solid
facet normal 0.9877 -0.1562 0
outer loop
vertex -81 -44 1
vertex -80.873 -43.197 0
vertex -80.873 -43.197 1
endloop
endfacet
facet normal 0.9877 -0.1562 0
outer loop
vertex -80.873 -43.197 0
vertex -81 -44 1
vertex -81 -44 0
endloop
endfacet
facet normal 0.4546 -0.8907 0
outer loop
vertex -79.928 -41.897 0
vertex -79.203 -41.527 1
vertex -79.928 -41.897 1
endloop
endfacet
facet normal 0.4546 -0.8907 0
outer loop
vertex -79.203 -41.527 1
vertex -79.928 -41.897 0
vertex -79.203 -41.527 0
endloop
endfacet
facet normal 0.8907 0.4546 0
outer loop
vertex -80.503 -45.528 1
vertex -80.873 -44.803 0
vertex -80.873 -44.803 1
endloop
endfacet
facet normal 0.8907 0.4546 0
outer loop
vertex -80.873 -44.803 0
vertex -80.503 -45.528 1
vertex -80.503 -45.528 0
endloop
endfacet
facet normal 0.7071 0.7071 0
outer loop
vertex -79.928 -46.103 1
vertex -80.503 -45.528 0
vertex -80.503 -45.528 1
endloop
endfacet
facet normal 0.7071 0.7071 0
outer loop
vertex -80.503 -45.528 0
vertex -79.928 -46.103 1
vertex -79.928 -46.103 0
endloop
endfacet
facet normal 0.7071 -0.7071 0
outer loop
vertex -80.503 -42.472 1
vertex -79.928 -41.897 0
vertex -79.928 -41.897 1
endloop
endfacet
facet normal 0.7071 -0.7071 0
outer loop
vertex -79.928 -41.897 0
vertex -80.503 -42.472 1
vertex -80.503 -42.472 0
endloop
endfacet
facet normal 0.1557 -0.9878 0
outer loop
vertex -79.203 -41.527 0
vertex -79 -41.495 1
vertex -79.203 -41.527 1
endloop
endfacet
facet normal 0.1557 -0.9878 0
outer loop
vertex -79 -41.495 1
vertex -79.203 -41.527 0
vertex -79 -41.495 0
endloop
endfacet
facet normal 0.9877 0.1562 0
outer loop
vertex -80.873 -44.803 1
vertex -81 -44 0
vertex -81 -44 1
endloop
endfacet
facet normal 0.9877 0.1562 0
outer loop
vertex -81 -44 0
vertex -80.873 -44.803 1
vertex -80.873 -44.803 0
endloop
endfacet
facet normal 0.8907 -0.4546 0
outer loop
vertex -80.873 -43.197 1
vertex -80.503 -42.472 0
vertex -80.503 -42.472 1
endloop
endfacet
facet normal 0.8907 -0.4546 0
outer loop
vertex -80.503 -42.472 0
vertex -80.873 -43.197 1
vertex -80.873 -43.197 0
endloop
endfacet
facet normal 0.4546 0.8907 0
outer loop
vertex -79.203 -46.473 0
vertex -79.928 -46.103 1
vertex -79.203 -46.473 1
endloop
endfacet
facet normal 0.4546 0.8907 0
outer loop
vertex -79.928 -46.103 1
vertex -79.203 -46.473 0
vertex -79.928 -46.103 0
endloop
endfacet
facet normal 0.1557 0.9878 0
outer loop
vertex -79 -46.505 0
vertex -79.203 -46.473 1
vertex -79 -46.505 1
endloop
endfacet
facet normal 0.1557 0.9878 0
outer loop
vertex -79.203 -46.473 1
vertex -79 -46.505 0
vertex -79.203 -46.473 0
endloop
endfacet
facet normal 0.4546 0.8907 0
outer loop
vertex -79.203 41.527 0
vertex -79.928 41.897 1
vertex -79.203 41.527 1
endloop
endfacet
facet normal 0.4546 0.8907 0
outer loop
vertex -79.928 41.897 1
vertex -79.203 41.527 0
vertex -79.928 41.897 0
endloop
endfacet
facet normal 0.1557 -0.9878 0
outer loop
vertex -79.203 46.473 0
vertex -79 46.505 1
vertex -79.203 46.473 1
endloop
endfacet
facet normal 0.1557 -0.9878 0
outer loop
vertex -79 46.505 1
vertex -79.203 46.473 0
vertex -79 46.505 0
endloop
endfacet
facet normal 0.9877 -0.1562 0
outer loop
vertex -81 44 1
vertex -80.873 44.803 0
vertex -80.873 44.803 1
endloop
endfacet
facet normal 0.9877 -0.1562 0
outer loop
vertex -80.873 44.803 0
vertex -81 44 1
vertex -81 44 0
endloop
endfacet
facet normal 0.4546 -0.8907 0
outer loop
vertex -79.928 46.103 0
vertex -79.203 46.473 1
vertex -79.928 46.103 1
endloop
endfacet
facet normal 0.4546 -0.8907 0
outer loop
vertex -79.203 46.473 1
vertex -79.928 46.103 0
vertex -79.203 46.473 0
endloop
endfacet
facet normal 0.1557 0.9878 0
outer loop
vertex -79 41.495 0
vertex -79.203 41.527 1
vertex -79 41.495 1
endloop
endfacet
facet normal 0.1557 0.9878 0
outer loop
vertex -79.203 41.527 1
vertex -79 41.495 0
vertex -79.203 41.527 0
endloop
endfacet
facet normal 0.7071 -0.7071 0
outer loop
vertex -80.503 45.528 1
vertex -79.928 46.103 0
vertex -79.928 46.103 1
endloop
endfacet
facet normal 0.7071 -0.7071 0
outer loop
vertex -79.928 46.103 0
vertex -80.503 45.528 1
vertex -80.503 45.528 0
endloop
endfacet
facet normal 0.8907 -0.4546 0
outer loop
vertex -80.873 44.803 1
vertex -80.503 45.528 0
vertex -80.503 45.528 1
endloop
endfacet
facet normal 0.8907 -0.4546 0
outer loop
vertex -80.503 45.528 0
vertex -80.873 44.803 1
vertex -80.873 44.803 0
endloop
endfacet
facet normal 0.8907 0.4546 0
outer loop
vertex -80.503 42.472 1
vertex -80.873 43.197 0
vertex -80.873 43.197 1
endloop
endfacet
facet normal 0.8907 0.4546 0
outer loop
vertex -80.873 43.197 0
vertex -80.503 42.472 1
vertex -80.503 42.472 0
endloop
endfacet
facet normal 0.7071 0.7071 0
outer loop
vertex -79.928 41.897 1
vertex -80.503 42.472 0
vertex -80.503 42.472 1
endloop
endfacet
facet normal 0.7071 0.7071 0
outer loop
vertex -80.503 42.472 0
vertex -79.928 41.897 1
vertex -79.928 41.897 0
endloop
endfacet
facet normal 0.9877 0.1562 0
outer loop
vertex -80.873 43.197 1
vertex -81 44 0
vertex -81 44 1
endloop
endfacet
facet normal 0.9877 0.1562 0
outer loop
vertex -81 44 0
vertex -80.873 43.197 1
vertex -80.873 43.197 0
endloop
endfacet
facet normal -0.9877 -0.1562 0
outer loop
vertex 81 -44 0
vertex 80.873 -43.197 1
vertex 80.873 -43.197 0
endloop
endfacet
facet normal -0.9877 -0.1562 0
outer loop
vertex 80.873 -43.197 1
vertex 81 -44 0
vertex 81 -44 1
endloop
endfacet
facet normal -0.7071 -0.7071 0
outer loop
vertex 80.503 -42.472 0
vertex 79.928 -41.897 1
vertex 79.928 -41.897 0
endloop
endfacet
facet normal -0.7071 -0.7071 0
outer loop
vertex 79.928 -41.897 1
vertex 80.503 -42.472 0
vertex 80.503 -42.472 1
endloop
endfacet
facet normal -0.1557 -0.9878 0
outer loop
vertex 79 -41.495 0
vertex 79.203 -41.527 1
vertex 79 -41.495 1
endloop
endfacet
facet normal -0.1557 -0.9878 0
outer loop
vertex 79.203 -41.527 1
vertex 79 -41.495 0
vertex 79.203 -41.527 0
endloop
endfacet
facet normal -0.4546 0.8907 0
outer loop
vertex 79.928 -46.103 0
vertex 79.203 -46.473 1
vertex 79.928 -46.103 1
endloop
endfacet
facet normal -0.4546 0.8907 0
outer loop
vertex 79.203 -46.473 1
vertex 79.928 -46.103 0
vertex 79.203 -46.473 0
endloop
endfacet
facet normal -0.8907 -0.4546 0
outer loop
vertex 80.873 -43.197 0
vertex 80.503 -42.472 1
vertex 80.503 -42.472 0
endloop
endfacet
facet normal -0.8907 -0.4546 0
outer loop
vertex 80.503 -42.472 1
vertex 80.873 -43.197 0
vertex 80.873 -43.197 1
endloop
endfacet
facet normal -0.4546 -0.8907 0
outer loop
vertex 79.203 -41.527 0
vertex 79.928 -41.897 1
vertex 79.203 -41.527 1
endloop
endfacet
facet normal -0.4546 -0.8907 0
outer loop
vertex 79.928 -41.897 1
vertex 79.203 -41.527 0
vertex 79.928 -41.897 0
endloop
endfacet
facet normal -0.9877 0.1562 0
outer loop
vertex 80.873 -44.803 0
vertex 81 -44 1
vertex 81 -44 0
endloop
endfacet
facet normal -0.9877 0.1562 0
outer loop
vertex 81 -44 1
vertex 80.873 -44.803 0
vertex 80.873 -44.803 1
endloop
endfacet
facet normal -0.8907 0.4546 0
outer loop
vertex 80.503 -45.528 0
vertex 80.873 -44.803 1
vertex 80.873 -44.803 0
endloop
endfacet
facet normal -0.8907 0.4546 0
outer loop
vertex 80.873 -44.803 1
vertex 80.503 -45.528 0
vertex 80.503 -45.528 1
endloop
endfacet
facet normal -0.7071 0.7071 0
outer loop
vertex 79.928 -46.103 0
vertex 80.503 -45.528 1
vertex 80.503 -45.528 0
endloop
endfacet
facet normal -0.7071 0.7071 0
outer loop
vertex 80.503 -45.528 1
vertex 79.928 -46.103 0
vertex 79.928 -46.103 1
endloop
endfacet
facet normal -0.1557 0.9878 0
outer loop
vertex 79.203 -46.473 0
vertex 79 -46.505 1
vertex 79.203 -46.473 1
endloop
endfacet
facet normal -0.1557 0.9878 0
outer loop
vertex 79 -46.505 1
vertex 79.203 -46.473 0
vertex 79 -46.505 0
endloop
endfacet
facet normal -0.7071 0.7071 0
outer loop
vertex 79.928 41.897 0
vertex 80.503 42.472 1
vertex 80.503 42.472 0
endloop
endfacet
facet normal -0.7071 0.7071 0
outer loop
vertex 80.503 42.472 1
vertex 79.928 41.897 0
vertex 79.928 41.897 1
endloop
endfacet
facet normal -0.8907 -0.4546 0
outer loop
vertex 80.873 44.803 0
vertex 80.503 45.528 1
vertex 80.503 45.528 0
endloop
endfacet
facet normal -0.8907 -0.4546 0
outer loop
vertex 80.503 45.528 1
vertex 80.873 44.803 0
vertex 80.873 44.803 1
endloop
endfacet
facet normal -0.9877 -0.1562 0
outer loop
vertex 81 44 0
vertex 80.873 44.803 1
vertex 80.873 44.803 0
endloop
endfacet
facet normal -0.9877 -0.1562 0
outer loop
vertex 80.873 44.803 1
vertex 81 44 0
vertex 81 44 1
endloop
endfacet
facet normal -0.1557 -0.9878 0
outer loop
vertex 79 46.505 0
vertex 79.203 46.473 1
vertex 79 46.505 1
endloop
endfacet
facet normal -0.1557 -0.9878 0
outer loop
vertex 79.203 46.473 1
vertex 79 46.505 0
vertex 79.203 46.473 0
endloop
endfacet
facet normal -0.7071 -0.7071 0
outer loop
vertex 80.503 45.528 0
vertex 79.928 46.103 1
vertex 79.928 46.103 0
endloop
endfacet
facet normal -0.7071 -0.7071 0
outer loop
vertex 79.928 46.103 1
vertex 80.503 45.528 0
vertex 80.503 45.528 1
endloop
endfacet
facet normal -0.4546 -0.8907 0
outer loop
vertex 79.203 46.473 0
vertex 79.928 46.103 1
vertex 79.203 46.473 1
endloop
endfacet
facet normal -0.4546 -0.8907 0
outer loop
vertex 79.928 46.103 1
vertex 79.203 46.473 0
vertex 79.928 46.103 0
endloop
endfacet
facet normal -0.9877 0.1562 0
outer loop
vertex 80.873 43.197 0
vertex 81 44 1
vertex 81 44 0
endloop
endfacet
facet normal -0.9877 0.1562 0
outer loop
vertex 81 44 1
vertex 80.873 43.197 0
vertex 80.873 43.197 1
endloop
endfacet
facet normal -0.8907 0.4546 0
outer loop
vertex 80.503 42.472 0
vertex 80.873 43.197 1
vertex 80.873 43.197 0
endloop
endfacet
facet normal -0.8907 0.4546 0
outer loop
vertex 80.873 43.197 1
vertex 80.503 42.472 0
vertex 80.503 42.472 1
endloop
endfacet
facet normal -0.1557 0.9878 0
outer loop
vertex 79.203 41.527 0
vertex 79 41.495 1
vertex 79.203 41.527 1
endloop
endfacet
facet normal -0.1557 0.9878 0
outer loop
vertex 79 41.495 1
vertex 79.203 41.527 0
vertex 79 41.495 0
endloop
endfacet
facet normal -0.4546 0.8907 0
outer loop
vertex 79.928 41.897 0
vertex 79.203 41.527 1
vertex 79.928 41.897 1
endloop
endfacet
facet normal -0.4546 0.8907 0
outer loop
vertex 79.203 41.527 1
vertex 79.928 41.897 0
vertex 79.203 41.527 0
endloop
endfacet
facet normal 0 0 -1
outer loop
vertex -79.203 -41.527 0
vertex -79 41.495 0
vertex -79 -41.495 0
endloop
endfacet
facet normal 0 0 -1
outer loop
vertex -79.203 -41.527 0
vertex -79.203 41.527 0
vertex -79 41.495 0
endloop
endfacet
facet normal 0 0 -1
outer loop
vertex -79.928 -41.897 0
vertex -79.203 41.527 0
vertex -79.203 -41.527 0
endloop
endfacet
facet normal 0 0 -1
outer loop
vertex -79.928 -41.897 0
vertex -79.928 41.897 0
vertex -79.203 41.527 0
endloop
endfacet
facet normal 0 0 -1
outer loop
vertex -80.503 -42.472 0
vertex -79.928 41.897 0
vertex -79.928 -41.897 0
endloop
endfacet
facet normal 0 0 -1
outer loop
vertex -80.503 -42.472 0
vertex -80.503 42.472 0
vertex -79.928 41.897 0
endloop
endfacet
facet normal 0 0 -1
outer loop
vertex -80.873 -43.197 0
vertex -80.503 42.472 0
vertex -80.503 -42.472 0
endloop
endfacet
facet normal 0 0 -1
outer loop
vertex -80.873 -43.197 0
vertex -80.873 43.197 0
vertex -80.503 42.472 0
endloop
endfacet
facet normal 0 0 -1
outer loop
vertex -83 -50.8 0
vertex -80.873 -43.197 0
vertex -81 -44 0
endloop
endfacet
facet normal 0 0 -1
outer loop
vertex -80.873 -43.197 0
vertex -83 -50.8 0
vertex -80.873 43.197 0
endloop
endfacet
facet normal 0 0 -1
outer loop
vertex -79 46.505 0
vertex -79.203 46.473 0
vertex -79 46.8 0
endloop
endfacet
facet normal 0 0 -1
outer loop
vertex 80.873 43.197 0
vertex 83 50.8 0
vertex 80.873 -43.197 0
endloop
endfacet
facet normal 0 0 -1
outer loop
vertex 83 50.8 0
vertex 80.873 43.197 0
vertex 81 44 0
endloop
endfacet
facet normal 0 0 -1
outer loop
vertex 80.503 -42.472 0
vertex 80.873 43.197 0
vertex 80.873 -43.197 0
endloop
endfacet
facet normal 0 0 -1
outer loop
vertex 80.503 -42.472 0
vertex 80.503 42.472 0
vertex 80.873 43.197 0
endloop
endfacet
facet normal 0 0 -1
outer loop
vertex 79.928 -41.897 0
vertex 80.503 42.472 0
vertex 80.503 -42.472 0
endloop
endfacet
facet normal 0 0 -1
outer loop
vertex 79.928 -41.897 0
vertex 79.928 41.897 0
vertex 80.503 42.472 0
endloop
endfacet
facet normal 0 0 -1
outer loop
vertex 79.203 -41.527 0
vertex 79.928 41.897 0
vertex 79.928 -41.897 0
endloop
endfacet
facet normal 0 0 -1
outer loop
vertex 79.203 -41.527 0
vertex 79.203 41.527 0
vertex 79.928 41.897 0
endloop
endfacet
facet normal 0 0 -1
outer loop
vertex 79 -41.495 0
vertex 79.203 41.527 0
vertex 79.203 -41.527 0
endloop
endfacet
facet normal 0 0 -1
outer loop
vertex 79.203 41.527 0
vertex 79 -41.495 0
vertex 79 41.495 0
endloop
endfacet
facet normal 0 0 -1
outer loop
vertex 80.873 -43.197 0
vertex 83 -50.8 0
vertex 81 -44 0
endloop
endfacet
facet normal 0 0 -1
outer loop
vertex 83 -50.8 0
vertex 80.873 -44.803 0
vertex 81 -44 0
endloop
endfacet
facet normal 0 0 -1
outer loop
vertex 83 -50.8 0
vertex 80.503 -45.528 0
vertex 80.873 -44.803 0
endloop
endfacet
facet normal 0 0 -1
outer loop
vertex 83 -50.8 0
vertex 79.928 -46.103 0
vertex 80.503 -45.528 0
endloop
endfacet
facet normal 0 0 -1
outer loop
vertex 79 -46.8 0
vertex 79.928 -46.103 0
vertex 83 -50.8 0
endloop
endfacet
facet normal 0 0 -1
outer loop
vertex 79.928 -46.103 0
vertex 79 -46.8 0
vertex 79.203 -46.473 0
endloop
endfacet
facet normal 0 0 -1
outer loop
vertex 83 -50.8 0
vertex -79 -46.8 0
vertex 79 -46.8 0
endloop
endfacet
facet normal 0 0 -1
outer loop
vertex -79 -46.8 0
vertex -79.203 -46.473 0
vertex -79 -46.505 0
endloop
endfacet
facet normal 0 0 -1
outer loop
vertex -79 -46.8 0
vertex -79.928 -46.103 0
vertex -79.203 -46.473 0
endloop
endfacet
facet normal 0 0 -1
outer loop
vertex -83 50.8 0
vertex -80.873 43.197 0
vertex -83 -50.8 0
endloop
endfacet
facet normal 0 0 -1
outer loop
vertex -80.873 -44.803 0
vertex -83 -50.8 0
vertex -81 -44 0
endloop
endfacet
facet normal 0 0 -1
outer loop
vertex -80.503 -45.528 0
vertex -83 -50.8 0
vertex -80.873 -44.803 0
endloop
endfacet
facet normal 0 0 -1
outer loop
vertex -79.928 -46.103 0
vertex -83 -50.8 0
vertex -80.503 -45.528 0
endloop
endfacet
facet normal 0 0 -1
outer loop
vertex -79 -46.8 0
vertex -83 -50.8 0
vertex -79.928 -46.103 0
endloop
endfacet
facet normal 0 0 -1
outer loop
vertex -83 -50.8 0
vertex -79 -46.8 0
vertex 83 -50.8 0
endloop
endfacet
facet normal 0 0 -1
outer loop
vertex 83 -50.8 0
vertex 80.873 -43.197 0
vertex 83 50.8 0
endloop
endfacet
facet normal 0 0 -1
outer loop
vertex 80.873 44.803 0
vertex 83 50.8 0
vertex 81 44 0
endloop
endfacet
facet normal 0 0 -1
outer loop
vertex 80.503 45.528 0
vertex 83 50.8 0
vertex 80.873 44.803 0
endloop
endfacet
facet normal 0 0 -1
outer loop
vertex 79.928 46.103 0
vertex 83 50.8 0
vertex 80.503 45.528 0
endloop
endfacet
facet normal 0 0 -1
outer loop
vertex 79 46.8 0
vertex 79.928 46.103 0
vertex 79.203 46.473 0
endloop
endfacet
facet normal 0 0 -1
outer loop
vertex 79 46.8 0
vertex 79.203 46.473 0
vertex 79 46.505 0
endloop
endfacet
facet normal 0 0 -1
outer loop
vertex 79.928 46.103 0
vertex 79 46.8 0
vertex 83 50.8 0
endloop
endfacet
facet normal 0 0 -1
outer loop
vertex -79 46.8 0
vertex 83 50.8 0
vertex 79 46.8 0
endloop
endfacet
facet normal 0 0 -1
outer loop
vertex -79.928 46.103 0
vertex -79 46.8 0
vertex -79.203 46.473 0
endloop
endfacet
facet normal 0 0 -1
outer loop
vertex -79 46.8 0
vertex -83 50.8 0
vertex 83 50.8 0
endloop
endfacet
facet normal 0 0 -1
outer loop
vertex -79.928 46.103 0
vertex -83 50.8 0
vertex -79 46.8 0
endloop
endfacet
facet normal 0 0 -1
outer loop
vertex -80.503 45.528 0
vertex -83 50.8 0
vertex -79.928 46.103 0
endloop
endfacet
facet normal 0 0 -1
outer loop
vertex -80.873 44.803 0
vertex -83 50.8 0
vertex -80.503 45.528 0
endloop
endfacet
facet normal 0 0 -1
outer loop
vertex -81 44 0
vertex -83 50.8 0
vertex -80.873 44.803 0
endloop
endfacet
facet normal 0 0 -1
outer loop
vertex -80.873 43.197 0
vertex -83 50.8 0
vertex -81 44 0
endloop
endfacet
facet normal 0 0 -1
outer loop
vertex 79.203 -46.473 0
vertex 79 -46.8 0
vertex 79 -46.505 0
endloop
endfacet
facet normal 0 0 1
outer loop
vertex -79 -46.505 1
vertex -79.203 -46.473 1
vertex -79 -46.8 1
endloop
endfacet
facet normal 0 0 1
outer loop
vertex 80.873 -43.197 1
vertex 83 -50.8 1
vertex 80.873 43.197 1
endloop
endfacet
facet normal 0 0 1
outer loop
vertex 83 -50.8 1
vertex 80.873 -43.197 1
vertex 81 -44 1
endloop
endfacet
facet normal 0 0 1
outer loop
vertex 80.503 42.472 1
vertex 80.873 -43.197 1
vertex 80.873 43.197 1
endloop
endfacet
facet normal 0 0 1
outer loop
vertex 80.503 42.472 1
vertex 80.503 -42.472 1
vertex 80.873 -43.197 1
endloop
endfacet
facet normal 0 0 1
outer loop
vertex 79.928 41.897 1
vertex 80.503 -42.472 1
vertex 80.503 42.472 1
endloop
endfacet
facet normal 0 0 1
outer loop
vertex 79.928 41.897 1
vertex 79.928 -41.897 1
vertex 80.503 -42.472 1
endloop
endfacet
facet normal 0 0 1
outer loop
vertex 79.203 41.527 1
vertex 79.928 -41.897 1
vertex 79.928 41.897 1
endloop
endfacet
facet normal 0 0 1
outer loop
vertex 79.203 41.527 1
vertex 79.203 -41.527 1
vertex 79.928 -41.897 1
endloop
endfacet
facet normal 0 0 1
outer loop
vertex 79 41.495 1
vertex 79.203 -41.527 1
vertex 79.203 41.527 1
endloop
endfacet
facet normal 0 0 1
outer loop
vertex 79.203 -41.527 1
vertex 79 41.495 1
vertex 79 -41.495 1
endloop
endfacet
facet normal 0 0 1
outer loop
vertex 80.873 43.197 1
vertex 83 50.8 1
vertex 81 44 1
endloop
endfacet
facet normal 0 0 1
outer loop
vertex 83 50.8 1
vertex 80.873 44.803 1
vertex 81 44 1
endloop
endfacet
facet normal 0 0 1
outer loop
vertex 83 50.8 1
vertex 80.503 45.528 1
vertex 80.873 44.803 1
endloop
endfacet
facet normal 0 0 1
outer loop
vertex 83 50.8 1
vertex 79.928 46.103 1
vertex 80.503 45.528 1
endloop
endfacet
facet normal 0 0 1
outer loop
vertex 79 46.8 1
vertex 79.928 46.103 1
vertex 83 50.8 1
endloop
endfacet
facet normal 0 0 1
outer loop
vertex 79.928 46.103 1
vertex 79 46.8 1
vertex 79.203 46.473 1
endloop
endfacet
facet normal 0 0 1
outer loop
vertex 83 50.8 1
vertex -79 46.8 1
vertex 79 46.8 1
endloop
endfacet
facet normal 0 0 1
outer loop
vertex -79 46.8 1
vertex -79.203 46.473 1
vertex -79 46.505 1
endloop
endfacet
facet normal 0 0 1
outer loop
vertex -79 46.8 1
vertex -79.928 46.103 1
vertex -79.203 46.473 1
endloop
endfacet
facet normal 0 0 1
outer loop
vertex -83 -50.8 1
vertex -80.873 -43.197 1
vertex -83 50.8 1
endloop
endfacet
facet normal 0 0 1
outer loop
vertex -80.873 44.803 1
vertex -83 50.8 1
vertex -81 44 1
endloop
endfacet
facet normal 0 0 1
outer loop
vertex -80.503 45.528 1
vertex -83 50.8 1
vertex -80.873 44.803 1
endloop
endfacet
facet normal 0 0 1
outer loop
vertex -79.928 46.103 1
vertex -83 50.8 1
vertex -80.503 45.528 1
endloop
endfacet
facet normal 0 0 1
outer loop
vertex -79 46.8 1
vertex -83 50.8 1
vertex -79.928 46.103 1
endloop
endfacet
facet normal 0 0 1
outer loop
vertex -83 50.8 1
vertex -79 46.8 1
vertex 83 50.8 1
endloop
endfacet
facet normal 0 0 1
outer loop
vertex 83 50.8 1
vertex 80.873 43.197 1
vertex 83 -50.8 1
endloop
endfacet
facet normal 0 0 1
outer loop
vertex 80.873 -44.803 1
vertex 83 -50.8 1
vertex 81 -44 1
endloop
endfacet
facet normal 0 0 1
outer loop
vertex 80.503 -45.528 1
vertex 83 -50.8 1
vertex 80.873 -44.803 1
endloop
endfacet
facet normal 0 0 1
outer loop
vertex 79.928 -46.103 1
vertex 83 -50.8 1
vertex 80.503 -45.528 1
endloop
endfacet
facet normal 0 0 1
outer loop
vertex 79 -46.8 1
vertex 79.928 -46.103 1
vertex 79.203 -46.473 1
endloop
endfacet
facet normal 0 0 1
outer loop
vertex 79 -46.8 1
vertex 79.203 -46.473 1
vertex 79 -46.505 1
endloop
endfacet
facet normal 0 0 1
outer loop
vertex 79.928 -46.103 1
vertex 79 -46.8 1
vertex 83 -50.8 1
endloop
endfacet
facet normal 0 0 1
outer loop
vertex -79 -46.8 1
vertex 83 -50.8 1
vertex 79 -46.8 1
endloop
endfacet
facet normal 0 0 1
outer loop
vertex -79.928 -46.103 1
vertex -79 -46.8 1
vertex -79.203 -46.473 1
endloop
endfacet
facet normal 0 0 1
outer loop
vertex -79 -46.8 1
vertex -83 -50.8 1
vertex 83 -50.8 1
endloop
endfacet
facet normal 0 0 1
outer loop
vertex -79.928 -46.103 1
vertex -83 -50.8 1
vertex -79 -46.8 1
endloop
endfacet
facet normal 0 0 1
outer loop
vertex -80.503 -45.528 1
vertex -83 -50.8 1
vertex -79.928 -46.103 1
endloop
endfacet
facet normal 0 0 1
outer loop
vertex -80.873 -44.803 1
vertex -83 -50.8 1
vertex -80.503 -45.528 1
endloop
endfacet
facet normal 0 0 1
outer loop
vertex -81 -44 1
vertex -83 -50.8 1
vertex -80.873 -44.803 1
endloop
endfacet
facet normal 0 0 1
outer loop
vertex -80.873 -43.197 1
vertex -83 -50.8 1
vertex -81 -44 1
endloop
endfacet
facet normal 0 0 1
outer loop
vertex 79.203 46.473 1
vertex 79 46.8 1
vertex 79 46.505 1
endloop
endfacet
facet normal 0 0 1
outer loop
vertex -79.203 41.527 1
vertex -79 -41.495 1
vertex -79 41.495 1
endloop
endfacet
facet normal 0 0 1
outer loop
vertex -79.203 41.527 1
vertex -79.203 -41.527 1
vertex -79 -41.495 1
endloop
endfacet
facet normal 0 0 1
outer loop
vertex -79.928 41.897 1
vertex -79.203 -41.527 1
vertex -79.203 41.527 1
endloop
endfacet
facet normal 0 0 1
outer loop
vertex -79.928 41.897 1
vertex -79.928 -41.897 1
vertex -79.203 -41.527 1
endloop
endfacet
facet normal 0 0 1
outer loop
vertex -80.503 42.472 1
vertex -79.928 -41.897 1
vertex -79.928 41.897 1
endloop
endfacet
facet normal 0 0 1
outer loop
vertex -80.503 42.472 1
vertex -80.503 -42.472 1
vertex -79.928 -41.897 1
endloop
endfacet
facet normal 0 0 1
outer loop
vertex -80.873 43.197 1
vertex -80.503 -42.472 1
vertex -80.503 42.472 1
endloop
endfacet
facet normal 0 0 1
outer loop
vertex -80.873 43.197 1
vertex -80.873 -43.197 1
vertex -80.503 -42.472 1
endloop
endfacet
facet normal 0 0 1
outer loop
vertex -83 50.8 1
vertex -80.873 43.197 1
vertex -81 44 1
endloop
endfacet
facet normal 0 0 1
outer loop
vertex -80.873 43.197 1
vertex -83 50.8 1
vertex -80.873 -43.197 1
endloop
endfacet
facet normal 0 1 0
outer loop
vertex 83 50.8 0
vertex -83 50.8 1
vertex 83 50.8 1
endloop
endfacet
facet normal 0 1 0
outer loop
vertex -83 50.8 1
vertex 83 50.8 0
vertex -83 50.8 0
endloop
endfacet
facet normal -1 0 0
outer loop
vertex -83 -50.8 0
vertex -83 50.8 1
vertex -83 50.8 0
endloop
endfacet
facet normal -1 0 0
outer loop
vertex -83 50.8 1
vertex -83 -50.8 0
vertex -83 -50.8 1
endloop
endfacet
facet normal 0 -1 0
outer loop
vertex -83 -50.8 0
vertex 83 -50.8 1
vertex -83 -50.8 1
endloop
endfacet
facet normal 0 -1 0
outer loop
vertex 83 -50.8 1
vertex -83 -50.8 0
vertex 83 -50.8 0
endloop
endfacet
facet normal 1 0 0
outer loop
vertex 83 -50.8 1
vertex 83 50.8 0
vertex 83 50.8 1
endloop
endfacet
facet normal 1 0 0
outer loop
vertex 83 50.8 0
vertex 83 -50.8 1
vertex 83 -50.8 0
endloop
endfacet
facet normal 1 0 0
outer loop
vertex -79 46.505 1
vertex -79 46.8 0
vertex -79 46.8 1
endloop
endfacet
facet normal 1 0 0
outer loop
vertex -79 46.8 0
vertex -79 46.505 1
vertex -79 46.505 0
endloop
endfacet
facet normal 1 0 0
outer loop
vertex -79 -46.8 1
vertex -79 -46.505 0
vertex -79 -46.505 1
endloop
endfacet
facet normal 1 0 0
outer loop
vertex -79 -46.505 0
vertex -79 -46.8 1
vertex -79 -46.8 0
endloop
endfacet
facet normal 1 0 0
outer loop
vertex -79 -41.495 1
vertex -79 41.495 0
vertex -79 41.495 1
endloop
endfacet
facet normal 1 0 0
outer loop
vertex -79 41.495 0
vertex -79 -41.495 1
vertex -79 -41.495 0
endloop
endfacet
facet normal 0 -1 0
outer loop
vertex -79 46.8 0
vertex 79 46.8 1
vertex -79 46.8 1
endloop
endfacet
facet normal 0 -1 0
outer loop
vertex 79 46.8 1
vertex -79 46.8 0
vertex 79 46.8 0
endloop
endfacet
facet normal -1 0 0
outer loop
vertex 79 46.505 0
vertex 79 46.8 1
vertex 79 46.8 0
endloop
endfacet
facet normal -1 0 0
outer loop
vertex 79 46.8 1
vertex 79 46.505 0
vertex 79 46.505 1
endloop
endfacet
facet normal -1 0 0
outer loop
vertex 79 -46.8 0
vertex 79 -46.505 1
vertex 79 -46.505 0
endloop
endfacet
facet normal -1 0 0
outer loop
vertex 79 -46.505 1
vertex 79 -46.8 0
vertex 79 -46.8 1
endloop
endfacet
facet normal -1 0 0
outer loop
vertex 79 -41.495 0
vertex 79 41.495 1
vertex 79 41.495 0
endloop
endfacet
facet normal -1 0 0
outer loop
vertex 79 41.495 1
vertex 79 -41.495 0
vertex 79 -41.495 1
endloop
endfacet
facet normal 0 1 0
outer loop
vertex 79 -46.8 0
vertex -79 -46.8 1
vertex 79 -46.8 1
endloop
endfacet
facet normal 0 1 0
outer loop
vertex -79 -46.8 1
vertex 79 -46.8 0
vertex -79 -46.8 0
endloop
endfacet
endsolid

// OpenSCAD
// Fast physical fit-check for the Luminary P4 rear mount.
// Print at 1 mm thick before committing to the structural rear backplate.

$fn = 20;

fit_w = 166.0;
fit_h = 101.6;
frame_w = 4.0;
fit_t = 1.0;
slot_dx = 78.0;
slot_dy = 44.0;
slot_len = 6.0;
slot_d = 5.2;

module pill_slot(length, diameter) {
    hull() {
        translate([-(length - diameter) / 2, 0]) circle(d = diameter);
        translate([(length - diameter) / 2, 0]) circle(d = diameter);
    }
}

difference() {
    linear_extrude(height = fit_t)
        difference() {
            square([fit_w, fit_h], center = true);
            square([fit_w - 2 * frame_w, fit_h - 2 * frame_w], center = true);
        }
    for (x = [-slot_dx, slot_dx])
        for (y = [-slot_dy, slot_dy])
            translate([x, y, -0.01])
                linear_extrude(height = fit_t + 0.02) pill_slot(slot_len, slot_d);
}
